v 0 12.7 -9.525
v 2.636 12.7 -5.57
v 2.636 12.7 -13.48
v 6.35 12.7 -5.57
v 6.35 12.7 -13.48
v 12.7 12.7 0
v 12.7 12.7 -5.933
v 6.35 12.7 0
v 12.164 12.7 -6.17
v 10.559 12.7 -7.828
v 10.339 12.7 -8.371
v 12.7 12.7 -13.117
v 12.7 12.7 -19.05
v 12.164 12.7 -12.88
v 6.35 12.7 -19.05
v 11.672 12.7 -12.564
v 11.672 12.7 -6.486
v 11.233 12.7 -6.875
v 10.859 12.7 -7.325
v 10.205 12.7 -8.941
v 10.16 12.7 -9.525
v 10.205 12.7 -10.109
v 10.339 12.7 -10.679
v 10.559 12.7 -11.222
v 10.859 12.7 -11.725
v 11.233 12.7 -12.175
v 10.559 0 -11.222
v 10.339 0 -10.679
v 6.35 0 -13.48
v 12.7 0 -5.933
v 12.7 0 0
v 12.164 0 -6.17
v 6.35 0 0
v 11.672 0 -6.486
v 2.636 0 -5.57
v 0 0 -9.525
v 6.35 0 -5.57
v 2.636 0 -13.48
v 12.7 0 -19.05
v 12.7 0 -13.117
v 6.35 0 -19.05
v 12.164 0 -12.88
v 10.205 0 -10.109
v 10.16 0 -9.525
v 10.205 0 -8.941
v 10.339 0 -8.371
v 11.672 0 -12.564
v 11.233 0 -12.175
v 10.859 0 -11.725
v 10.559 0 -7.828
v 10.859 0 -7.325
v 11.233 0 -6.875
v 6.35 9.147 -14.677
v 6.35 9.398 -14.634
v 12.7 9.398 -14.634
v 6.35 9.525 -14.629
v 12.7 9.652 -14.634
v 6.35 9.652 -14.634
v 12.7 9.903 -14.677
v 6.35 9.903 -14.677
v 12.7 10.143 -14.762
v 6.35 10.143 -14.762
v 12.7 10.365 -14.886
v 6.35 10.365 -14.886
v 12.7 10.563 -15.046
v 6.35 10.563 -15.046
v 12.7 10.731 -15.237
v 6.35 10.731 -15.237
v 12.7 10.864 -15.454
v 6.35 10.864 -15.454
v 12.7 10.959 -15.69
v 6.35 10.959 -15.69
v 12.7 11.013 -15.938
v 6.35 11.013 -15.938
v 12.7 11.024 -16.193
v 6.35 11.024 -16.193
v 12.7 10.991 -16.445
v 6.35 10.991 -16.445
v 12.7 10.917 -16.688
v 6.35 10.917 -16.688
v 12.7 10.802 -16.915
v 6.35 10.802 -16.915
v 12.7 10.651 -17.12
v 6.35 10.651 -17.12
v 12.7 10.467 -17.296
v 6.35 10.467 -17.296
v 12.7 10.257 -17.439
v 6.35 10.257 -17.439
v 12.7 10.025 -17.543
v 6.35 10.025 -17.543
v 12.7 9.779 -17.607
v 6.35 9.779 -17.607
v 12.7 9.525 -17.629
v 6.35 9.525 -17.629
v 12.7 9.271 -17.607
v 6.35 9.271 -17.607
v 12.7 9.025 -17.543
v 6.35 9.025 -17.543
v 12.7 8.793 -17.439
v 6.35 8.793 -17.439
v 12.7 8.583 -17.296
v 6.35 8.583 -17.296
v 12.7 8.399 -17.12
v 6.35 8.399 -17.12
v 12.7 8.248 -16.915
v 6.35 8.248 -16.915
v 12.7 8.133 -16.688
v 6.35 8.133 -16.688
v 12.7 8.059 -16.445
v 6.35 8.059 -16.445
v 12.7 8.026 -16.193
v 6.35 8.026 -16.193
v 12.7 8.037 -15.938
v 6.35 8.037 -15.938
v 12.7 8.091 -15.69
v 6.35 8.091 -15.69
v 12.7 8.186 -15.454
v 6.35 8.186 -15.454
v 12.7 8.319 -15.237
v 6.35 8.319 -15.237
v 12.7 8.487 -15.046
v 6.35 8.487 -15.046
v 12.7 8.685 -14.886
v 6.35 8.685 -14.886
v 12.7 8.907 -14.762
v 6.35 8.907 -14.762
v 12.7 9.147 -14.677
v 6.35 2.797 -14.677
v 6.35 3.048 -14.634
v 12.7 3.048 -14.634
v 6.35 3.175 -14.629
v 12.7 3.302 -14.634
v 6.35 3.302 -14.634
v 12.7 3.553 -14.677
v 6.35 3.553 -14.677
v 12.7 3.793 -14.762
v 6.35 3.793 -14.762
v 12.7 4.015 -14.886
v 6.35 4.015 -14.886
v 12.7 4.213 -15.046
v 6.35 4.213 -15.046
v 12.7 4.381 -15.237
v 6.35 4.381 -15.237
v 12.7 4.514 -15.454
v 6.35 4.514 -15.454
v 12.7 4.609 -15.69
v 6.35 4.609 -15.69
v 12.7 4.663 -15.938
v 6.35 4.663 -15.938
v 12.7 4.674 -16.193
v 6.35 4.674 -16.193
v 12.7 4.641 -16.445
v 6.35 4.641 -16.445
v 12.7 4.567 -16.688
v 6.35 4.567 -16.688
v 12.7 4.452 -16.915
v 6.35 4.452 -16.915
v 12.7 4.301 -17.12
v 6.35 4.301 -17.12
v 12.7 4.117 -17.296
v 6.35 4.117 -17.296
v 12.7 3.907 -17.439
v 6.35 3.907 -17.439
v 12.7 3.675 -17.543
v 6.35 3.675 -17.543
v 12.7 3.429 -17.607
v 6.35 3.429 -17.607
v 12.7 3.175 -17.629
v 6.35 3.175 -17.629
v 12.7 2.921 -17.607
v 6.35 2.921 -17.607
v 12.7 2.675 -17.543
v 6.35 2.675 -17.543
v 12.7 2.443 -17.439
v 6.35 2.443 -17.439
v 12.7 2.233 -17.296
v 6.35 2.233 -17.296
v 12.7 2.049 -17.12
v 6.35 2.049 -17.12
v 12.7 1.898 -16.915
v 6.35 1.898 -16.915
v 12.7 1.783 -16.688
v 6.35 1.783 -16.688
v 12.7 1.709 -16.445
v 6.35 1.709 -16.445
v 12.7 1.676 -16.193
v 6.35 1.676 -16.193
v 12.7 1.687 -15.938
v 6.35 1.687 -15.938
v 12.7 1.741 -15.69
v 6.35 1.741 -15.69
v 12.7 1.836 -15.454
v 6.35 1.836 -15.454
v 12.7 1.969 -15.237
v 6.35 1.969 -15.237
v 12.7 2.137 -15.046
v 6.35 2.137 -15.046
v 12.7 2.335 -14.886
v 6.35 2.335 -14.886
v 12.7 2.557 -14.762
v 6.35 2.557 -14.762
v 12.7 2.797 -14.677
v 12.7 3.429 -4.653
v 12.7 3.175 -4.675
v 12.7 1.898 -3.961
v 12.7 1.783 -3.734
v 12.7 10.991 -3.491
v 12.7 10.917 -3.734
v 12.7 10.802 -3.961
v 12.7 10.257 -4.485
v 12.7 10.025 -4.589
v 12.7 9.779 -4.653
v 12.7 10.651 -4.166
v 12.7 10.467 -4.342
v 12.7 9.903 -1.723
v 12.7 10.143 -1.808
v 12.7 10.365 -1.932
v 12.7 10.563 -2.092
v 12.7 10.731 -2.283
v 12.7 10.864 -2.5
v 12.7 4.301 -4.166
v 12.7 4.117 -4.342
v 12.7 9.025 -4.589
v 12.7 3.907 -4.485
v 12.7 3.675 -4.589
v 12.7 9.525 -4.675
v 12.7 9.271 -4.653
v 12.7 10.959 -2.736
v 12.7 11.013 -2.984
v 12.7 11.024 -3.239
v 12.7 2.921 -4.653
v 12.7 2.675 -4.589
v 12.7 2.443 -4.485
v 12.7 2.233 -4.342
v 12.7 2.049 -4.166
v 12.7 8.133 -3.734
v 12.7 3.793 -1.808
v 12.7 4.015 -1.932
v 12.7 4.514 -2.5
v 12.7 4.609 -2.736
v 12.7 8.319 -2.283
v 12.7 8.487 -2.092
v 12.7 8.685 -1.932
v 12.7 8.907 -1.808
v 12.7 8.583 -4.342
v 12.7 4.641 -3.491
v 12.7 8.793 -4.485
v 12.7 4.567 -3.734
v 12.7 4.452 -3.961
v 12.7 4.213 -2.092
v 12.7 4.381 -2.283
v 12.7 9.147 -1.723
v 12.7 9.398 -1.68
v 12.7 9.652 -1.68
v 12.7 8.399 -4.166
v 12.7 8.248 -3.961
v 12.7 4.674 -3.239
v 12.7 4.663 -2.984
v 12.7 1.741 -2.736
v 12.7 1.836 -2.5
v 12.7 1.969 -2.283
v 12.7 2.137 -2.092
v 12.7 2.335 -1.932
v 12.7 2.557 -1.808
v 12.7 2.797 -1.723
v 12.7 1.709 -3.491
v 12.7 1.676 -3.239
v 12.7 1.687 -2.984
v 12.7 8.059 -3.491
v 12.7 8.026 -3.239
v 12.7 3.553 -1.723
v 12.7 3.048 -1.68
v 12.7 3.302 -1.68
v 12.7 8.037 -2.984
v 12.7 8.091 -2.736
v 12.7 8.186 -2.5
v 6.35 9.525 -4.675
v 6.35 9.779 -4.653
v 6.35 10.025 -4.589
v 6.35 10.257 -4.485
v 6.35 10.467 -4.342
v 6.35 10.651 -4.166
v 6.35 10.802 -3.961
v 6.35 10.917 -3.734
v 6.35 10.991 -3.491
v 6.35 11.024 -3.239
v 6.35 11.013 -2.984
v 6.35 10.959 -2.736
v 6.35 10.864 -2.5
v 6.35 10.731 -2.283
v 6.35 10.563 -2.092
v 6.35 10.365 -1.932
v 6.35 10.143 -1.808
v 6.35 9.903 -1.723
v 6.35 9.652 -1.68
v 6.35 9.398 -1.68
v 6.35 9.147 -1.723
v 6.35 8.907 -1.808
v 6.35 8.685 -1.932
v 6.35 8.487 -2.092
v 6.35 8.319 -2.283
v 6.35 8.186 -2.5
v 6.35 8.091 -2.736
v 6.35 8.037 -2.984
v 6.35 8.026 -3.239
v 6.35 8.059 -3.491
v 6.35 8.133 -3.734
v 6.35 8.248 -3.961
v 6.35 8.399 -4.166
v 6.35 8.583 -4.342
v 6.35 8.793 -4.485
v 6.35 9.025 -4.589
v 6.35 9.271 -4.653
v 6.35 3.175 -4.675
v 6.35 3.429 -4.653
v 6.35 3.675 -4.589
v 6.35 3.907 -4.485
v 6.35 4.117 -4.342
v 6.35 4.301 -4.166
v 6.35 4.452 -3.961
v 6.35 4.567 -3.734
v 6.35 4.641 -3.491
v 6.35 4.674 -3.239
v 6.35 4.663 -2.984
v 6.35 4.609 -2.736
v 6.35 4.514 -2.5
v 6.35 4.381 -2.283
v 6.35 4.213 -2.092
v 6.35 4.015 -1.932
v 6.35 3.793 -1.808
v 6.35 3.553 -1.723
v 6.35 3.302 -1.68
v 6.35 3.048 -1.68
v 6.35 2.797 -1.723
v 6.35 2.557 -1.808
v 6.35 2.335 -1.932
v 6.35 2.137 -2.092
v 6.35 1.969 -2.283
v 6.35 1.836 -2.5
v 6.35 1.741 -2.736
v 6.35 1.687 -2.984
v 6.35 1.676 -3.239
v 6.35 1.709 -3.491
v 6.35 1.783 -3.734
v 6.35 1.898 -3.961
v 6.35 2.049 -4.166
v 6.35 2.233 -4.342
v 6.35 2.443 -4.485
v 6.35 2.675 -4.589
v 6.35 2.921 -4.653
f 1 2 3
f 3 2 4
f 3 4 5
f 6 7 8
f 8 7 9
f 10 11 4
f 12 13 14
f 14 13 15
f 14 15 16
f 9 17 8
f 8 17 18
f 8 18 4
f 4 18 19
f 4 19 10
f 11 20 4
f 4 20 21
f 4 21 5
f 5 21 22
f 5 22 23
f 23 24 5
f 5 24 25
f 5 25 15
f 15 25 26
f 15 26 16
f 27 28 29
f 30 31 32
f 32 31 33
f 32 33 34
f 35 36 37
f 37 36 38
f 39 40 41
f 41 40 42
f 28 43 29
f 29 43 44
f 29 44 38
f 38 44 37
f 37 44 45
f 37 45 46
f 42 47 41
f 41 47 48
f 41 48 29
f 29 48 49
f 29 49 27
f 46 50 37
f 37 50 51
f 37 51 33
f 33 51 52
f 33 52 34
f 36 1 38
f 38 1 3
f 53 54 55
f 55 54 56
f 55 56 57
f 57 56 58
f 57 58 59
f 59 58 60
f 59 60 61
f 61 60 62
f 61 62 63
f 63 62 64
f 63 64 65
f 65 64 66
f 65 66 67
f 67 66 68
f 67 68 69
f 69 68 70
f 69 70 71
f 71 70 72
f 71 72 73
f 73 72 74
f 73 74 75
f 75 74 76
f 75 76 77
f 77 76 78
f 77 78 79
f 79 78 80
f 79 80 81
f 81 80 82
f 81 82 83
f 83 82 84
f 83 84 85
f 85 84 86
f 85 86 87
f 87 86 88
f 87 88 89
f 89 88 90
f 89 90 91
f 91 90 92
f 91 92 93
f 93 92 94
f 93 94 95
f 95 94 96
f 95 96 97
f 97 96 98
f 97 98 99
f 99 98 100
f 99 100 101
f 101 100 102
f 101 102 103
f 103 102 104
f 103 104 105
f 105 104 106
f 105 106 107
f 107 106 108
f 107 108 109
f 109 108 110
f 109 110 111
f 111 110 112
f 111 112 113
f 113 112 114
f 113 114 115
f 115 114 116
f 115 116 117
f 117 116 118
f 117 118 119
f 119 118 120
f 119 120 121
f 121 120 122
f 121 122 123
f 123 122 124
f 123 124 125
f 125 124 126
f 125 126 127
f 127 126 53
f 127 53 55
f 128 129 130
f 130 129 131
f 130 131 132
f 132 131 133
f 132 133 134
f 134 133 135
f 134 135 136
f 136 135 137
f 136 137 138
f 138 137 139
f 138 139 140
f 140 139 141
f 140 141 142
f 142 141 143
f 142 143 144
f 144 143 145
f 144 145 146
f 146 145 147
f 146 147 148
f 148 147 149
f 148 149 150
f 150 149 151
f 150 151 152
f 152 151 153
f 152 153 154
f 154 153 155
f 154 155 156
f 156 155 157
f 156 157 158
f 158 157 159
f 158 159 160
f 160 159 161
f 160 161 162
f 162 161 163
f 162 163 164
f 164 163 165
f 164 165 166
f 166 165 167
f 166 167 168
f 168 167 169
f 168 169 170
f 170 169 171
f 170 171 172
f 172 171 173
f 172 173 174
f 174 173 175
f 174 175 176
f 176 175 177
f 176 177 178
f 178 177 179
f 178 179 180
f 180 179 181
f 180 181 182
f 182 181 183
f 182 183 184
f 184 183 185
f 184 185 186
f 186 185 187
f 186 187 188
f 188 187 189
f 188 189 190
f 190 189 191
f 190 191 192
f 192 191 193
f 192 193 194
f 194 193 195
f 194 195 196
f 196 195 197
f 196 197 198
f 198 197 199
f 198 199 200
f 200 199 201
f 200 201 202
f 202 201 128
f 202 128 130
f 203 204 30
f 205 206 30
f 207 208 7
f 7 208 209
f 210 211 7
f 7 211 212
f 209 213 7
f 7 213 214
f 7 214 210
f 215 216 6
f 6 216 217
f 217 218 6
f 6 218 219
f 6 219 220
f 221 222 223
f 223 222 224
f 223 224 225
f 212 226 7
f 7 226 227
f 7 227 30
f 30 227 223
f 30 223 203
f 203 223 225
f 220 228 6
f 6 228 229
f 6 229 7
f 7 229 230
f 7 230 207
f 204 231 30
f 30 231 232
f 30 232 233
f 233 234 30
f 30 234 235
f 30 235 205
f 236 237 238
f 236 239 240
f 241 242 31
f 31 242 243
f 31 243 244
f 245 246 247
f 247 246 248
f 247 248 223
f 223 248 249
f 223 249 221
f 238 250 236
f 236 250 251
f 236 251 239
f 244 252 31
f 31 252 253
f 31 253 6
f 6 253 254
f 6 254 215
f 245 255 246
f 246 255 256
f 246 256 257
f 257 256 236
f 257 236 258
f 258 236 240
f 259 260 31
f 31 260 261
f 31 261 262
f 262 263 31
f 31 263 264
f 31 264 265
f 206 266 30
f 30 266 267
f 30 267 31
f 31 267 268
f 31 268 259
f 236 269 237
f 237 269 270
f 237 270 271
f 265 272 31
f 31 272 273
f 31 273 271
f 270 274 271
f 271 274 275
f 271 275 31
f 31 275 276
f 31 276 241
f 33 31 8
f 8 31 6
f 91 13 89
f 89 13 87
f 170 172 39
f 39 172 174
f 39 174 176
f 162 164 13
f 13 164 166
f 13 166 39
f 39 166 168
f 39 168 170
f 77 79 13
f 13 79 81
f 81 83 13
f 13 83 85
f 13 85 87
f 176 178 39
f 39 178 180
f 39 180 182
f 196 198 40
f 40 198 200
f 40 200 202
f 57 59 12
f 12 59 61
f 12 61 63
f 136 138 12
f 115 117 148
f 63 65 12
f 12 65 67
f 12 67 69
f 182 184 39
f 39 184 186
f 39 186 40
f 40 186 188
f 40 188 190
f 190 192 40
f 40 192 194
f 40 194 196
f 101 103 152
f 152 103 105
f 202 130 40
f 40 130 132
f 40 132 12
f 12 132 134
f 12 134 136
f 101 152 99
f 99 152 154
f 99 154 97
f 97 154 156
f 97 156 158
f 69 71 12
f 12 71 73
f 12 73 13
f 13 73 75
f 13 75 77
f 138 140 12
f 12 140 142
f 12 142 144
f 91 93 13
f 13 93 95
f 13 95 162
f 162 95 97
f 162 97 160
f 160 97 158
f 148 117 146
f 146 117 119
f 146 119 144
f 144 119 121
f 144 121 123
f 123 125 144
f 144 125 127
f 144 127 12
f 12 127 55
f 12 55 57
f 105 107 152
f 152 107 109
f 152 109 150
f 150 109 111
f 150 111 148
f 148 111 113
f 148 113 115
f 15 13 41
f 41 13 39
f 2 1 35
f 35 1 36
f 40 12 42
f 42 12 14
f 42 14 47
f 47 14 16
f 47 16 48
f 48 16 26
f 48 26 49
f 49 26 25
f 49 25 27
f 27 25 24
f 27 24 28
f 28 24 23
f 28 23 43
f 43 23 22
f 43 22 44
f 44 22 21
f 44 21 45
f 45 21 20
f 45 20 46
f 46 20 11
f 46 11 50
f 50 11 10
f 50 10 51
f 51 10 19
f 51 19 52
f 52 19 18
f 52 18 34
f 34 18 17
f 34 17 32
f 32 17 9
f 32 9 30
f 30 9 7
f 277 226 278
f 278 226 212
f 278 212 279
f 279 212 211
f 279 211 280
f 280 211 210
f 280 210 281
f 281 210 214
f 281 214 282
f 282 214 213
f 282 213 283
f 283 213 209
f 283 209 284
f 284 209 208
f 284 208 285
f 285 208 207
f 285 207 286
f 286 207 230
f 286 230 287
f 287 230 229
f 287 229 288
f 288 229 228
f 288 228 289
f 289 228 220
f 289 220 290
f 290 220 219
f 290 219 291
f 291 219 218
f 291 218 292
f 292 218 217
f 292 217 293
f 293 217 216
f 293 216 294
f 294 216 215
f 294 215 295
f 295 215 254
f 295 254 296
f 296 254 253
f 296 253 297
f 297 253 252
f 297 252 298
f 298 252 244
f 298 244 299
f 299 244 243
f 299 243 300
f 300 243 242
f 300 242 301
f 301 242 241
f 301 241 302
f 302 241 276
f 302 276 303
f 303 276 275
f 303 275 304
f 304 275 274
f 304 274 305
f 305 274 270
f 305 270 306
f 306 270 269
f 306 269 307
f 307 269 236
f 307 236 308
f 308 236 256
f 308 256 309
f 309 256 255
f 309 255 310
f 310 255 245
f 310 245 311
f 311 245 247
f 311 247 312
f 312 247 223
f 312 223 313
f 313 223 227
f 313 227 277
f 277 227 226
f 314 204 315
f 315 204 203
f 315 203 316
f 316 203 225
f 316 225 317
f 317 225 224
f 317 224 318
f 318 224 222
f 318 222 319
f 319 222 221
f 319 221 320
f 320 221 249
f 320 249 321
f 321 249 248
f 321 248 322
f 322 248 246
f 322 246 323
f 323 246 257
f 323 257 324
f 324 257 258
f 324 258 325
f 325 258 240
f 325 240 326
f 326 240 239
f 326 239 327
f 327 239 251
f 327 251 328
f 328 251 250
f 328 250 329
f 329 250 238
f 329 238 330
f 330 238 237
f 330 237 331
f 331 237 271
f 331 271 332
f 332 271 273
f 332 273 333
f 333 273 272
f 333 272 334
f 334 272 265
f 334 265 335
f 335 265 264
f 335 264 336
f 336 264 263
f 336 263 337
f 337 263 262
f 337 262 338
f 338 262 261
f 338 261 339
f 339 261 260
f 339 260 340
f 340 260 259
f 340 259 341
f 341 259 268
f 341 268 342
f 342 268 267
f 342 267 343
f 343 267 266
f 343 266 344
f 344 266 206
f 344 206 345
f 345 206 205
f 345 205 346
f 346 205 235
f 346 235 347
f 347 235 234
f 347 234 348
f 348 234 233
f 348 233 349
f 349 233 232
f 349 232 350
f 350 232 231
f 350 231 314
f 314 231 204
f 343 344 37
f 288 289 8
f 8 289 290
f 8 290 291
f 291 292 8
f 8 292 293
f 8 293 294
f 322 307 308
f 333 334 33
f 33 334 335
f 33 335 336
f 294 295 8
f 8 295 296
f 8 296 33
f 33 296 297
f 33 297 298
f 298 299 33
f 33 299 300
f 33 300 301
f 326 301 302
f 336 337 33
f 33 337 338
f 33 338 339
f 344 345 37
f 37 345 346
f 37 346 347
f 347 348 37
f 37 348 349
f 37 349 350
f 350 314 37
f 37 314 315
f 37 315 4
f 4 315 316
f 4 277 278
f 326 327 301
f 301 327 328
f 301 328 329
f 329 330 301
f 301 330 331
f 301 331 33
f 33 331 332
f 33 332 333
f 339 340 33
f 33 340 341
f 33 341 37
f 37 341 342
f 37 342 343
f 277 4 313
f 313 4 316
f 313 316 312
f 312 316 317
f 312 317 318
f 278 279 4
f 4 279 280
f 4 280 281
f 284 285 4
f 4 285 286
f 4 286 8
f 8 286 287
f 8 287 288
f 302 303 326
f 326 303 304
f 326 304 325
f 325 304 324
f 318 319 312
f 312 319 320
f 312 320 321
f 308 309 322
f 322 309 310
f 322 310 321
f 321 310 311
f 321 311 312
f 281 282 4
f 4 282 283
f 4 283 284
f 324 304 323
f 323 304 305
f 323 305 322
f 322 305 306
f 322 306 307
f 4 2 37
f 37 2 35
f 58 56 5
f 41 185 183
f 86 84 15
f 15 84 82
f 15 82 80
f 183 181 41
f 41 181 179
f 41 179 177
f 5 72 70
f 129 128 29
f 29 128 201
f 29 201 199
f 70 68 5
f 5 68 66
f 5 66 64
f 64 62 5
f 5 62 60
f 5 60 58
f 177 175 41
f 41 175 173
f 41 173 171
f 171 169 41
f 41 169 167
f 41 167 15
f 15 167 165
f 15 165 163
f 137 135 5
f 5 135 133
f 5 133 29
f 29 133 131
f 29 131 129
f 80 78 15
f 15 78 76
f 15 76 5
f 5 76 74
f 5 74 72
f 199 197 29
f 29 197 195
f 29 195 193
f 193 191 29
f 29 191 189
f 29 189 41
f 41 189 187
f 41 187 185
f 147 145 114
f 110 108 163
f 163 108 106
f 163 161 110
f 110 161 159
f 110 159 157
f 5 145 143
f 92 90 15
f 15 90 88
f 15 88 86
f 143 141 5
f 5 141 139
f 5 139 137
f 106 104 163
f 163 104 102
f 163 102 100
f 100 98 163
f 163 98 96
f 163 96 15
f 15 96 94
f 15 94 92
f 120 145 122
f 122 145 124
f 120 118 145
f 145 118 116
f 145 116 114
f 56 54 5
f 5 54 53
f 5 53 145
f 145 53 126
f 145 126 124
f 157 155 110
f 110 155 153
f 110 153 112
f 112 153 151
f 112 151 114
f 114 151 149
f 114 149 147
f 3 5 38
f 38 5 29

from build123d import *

# Parameters (mm, degrees)
SKETCH1_W           = 12.7
SKETCH1_H           = 19.05
BOSS_EXTRUDE1_DEPTH = 12.7
CUT_EXTRUDE2_DEPTH  = 12.7
SKETCH5_R           = 1.5
CUT_EXTRUDE3_DEPTH  = 12.7
CUT_EXTRUDE4_DEPTH  = 12.7


with BuildPart() as part:
    # Sketch1 → Boss-Extrude1 (new body)
    with BuildSketch(Plane(origin=(0, 0, 0), x_dir=(1, 0, 0), z_dir=(0, 1, 0))):
        with Locations((6.35, 9.525)):
            Rectangle(SKETCH1_W, SKETCH1_H)
    extrude(amount=BOSS_EXTRUDE1_DEPTH)

    # Sketch4 → Cut-Extrude2 (cut)
    with BuildSketch(Plane(origin=(0, 12.7, 0), x_dir=(1, 0, 0), z_dir=(0, 1, 0))):
        Polygon((0, 19.05), (0, 9.525), (6.35, 19.05), align=None)
        Polygon((6.35, 0), (0, 9.525), (0, 0), align=None)
        with BuildLine():
            Line((12.7, 5.932897552), (12.7, 13.117102448))
            ThreePointArc((12.7, 13.117102448), (10.16, 9.525), (12.7, 5.932897552))
        make_face()
        with BuildLine():
            ThreePointArc((17.78, 9.525), (16.169704526, 12.635851973), (12.7, 13.117102448))
            Line((12.7, 13.117102448), (12.7, 5.932897552))
            ThreePointArc((12.7, 5.932897552), (16.169704526, 6.414148027), (17.78, 9.525))
        make_face()
    extrude(amount=-CUT_EXTRUDE2_DEPTH, mode=Mode.SUBTRACT)

    # Sketch5 → Cut-Extrude3 (cut)
    with BuildSketch(Plane(origin=(12.7, 0, 0), x_dir=(0, 0, -1), z_dir=(1, 0, 0))):
        with Locations((3.175, 9.525)):
            Circle(SKETCH5_R)
        with Locations((16.129, 9.525)):
            Circle(SKETCH5_R)
        with Locations((16.129, 3.175)):
            Circle(SKETCH5_R)
        with Locations((3.175, 3.175)):
            Circle(SKETCH5_R)
    extrude(amount=-CUT_EXTRUDE3_DEPTH, mode=Mode.SUBTRACT)

    # Sketch6 → Cut-Extrude4 (cut)
    with BuildSketch(Plane.XZ):
        Polygon((6.35, 0), (6.35, -5.570300529), (2.636466314, -5.570300529), align=None)
    cut_extrude4 = extrude(amount=-CUT_EXTRUDE4_DEPTH, mode=Mode.SUBTRACT)

    # Mirror1: Cut-Extrude4 across plane
    add(cut_extrude4.mirror(Plane(origin=(0, 0, -9.525), x_dir=(1, 0, 0), z_dir=(0, 0, -1))), mode=Mode.SUBTRACT)


solid = part.part
